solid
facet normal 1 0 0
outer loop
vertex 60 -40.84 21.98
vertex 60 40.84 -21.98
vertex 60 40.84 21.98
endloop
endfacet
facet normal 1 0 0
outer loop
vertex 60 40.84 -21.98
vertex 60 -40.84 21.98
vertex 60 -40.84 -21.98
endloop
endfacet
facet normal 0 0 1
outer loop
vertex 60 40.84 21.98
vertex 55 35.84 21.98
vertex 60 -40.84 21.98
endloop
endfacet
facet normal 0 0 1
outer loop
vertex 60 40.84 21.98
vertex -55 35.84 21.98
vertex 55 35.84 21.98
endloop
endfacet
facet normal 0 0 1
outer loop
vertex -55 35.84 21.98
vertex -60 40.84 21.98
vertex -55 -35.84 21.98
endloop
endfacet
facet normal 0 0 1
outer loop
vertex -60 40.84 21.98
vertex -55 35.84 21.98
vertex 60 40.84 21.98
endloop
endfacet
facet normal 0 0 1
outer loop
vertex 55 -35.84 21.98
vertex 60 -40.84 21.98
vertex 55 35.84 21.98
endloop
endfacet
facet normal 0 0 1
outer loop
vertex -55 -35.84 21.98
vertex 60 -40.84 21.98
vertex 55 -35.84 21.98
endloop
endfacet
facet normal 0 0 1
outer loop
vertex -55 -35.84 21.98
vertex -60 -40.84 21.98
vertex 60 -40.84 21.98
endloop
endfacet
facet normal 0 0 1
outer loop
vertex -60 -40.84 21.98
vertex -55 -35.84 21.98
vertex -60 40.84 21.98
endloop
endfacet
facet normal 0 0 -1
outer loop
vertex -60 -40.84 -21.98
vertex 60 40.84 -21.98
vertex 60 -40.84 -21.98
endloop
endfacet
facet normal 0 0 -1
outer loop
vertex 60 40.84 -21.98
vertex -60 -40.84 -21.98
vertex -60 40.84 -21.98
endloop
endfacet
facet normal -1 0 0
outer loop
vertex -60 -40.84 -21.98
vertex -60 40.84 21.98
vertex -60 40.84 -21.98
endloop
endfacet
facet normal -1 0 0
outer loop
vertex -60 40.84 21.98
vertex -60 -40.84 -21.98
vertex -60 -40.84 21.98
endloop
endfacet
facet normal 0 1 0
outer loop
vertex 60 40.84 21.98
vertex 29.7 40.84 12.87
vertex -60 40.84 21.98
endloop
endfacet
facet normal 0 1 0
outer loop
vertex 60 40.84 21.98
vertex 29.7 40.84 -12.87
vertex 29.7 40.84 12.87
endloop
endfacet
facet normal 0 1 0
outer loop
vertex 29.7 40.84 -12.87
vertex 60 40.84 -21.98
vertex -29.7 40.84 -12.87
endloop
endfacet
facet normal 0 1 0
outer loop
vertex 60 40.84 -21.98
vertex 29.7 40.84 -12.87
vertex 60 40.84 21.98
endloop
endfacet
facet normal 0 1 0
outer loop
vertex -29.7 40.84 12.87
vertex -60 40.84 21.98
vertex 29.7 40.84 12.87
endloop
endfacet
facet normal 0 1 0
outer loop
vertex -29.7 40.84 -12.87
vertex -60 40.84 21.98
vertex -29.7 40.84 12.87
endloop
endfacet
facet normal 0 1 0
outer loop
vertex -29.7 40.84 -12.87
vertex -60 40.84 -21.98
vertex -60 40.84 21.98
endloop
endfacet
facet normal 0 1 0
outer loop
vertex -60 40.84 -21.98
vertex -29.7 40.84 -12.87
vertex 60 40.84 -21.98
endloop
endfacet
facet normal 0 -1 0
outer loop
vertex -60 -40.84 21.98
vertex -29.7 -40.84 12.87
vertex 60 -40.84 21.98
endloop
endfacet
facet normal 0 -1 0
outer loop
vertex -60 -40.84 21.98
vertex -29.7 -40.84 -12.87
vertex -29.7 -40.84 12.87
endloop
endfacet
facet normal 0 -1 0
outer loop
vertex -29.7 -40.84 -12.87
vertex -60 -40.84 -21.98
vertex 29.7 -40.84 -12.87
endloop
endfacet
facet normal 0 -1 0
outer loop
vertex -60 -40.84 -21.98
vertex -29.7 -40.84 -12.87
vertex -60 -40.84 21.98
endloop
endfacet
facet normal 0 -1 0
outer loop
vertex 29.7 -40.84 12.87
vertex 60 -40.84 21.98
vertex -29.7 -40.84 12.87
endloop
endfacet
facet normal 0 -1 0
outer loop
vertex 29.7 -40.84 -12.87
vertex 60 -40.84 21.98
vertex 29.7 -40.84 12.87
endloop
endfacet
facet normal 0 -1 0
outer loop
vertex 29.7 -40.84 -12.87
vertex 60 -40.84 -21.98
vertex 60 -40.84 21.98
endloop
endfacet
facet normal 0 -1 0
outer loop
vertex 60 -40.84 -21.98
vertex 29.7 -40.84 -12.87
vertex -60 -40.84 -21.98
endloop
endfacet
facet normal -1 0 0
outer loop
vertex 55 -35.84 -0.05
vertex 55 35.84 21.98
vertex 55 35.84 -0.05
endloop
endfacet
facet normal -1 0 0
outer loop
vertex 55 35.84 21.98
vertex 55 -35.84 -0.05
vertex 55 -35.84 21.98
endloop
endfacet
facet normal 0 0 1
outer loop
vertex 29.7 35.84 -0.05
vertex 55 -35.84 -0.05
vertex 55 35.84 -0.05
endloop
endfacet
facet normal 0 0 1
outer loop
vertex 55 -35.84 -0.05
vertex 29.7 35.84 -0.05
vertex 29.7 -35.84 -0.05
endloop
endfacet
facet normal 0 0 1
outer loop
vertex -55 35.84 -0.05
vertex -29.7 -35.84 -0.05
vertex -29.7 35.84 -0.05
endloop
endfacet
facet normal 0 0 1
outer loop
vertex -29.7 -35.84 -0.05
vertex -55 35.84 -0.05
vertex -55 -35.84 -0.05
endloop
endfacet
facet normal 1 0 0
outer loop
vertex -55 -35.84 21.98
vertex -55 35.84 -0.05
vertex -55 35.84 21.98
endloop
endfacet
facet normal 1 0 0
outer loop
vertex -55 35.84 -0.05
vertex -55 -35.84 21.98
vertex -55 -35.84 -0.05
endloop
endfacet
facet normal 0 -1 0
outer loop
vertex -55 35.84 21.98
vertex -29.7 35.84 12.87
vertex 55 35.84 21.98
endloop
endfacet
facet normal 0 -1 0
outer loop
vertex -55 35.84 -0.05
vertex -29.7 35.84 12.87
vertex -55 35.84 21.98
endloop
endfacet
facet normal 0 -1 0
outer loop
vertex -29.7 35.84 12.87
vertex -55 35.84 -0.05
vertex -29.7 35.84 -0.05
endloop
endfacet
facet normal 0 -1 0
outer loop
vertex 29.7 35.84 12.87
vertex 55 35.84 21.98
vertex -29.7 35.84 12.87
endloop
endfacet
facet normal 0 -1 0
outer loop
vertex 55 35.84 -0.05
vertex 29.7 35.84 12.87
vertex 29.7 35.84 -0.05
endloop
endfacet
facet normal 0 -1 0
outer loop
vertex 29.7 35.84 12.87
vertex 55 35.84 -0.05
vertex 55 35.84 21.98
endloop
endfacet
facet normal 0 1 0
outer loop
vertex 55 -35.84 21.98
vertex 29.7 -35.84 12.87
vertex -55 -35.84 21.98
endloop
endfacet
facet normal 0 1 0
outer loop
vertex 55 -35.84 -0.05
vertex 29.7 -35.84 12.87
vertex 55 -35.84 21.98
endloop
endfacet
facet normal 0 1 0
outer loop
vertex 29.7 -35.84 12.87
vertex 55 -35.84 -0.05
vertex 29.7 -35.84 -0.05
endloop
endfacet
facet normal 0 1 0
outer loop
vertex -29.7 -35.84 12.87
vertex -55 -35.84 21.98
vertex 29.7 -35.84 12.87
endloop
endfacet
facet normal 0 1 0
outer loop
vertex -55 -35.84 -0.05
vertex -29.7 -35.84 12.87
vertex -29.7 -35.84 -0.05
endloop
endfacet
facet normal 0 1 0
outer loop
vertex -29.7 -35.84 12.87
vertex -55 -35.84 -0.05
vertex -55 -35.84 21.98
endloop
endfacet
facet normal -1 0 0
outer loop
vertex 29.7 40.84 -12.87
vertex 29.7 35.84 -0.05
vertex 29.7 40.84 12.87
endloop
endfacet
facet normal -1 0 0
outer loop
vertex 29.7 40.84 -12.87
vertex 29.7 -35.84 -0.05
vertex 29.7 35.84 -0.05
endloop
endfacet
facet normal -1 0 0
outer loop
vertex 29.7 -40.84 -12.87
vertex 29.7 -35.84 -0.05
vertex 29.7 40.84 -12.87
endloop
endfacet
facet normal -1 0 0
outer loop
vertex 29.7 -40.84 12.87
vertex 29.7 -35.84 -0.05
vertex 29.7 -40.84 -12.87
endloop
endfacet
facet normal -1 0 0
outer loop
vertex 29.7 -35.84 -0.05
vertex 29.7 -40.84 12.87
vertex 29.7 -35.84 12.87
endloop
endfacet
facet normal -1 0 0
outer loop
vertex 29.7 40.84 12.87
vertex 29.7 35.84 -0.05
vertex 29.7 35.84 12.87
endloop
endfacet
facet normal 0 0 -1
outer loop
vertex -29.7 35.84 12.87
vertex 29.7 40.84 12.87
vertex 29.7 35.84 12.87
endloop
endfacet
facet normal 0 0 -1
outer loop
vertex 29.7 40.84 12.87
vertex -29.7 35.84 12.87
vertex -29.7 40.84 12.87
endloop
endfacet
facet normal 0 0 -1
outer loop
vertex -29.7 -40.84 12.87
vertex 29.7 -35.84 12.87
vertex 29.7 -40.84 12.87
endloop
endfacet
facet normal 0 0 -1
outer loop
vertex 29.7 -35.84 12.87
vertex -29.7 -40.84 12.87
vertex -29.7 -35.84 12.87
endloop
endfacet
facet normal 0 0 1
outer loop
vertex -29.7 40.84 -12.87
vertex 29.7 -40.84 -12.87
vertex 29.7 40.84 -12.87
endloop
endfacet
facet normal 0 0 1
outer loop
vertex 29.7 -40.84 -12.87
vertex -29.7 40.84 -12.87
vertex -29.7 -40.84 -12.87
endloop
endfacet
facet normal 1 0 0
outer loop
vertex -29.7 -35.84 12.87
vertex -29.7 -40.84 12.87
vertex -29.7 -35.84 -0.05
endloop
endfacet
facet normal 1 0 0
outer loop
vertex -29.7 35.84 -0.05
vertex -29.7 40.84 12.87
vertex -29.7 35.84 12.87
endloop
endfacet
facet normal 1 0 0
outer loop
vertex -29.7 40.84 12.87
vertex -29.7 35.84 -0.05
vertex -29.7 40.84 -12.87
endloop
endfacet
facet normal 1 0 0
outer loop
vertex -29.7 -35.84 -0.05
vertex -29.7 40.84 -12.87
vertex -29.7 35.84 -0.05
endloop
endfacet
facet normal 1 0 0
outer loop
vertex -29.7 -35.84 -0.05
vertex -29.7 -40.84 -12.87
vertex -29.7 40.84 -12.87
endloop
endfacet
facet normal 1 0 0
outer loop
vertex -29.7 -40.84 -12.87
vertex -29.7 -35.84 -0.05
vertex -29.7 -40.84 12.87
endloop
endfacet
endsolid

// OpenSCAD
/* doodle-meta {"version":1,"parameters":{"width":{"label":"Overall width","description":"Changes the body width","unit":"mm","feature":"body_width"},"depth":{"label":"Overall depth","description":"Changes the body depth","unit":"mm","feature":"body_depth"},"height":{"label":"Overall height","description":"Changes the body height","unit":"mm","feature":"body_height"},"wall_thickness":{"label":"Wall thickness","description":"Changes the uniform wall thickness","unit":"mm","feature":"wall_thickness"},"window_width":{"label":"Window width","description":"Changes the width of the front window","unit":"mm","feature":"front_window"},"window_height":{"label":"Window height","description":"Changes the height of the front window","unit":"mm","feature":"front_window"}},"features":{"body_width":{"kind":"dimension","axis":"x","label":"Overall width"},"body_depth":{"kind":"dimension","axis":"y","label":"Overall depth"},"body_height":{"kind":"dimension","axis":"z","label":"Overall height"},"wall_thickness":{"kind":"region","label":"Wall thickness","min":[0,0,0],"max":[{"parameter":"wall_thickness","scale":1,"offset":0},{"parameter":"wall_thickness","scale":1,"offset":0},{"parameter":"height","scale":1,"offset":0}]},"front_window":{"kind":"region","label":"Front window","min":[{"parameter":"width","scale":0.5,"offset":-29.7},{"parameter":"depth","scale":0,"offset":0},{"parameter":"height","scale":0.5,"offset":-12.87}],"max":[{"parameter":"width","scale":0.5,"offset":29.7},{"parameter":"depth","scale":1,"offset":0},{"parameter":"height","scale":0.5,"offset":12.87}]}}} */

// Top-level parameters (user-editable)
width = 120.0;
depth = 81.68;
height = 43.96;
wall_thickness = 5.0;
window_width = 59.4;
window_height = 25.74;

// Derived constants (not user-editable)
eps = 0.1;

// Main design
difference() {
    // Outer shell
    cube([width, depth, height], center=true);
    
    // Top cavity (open top)
    translate([0, 0, height/2])
        cube([width - 2*wall_thickness, depth - 2*wall_thickness, height + eps], center=true);
    
    // Front window (through cutout along Y)
    translate([0, 0, 0])
        cube([window_width, depth + 2*eps, window_height], center=true);
}
